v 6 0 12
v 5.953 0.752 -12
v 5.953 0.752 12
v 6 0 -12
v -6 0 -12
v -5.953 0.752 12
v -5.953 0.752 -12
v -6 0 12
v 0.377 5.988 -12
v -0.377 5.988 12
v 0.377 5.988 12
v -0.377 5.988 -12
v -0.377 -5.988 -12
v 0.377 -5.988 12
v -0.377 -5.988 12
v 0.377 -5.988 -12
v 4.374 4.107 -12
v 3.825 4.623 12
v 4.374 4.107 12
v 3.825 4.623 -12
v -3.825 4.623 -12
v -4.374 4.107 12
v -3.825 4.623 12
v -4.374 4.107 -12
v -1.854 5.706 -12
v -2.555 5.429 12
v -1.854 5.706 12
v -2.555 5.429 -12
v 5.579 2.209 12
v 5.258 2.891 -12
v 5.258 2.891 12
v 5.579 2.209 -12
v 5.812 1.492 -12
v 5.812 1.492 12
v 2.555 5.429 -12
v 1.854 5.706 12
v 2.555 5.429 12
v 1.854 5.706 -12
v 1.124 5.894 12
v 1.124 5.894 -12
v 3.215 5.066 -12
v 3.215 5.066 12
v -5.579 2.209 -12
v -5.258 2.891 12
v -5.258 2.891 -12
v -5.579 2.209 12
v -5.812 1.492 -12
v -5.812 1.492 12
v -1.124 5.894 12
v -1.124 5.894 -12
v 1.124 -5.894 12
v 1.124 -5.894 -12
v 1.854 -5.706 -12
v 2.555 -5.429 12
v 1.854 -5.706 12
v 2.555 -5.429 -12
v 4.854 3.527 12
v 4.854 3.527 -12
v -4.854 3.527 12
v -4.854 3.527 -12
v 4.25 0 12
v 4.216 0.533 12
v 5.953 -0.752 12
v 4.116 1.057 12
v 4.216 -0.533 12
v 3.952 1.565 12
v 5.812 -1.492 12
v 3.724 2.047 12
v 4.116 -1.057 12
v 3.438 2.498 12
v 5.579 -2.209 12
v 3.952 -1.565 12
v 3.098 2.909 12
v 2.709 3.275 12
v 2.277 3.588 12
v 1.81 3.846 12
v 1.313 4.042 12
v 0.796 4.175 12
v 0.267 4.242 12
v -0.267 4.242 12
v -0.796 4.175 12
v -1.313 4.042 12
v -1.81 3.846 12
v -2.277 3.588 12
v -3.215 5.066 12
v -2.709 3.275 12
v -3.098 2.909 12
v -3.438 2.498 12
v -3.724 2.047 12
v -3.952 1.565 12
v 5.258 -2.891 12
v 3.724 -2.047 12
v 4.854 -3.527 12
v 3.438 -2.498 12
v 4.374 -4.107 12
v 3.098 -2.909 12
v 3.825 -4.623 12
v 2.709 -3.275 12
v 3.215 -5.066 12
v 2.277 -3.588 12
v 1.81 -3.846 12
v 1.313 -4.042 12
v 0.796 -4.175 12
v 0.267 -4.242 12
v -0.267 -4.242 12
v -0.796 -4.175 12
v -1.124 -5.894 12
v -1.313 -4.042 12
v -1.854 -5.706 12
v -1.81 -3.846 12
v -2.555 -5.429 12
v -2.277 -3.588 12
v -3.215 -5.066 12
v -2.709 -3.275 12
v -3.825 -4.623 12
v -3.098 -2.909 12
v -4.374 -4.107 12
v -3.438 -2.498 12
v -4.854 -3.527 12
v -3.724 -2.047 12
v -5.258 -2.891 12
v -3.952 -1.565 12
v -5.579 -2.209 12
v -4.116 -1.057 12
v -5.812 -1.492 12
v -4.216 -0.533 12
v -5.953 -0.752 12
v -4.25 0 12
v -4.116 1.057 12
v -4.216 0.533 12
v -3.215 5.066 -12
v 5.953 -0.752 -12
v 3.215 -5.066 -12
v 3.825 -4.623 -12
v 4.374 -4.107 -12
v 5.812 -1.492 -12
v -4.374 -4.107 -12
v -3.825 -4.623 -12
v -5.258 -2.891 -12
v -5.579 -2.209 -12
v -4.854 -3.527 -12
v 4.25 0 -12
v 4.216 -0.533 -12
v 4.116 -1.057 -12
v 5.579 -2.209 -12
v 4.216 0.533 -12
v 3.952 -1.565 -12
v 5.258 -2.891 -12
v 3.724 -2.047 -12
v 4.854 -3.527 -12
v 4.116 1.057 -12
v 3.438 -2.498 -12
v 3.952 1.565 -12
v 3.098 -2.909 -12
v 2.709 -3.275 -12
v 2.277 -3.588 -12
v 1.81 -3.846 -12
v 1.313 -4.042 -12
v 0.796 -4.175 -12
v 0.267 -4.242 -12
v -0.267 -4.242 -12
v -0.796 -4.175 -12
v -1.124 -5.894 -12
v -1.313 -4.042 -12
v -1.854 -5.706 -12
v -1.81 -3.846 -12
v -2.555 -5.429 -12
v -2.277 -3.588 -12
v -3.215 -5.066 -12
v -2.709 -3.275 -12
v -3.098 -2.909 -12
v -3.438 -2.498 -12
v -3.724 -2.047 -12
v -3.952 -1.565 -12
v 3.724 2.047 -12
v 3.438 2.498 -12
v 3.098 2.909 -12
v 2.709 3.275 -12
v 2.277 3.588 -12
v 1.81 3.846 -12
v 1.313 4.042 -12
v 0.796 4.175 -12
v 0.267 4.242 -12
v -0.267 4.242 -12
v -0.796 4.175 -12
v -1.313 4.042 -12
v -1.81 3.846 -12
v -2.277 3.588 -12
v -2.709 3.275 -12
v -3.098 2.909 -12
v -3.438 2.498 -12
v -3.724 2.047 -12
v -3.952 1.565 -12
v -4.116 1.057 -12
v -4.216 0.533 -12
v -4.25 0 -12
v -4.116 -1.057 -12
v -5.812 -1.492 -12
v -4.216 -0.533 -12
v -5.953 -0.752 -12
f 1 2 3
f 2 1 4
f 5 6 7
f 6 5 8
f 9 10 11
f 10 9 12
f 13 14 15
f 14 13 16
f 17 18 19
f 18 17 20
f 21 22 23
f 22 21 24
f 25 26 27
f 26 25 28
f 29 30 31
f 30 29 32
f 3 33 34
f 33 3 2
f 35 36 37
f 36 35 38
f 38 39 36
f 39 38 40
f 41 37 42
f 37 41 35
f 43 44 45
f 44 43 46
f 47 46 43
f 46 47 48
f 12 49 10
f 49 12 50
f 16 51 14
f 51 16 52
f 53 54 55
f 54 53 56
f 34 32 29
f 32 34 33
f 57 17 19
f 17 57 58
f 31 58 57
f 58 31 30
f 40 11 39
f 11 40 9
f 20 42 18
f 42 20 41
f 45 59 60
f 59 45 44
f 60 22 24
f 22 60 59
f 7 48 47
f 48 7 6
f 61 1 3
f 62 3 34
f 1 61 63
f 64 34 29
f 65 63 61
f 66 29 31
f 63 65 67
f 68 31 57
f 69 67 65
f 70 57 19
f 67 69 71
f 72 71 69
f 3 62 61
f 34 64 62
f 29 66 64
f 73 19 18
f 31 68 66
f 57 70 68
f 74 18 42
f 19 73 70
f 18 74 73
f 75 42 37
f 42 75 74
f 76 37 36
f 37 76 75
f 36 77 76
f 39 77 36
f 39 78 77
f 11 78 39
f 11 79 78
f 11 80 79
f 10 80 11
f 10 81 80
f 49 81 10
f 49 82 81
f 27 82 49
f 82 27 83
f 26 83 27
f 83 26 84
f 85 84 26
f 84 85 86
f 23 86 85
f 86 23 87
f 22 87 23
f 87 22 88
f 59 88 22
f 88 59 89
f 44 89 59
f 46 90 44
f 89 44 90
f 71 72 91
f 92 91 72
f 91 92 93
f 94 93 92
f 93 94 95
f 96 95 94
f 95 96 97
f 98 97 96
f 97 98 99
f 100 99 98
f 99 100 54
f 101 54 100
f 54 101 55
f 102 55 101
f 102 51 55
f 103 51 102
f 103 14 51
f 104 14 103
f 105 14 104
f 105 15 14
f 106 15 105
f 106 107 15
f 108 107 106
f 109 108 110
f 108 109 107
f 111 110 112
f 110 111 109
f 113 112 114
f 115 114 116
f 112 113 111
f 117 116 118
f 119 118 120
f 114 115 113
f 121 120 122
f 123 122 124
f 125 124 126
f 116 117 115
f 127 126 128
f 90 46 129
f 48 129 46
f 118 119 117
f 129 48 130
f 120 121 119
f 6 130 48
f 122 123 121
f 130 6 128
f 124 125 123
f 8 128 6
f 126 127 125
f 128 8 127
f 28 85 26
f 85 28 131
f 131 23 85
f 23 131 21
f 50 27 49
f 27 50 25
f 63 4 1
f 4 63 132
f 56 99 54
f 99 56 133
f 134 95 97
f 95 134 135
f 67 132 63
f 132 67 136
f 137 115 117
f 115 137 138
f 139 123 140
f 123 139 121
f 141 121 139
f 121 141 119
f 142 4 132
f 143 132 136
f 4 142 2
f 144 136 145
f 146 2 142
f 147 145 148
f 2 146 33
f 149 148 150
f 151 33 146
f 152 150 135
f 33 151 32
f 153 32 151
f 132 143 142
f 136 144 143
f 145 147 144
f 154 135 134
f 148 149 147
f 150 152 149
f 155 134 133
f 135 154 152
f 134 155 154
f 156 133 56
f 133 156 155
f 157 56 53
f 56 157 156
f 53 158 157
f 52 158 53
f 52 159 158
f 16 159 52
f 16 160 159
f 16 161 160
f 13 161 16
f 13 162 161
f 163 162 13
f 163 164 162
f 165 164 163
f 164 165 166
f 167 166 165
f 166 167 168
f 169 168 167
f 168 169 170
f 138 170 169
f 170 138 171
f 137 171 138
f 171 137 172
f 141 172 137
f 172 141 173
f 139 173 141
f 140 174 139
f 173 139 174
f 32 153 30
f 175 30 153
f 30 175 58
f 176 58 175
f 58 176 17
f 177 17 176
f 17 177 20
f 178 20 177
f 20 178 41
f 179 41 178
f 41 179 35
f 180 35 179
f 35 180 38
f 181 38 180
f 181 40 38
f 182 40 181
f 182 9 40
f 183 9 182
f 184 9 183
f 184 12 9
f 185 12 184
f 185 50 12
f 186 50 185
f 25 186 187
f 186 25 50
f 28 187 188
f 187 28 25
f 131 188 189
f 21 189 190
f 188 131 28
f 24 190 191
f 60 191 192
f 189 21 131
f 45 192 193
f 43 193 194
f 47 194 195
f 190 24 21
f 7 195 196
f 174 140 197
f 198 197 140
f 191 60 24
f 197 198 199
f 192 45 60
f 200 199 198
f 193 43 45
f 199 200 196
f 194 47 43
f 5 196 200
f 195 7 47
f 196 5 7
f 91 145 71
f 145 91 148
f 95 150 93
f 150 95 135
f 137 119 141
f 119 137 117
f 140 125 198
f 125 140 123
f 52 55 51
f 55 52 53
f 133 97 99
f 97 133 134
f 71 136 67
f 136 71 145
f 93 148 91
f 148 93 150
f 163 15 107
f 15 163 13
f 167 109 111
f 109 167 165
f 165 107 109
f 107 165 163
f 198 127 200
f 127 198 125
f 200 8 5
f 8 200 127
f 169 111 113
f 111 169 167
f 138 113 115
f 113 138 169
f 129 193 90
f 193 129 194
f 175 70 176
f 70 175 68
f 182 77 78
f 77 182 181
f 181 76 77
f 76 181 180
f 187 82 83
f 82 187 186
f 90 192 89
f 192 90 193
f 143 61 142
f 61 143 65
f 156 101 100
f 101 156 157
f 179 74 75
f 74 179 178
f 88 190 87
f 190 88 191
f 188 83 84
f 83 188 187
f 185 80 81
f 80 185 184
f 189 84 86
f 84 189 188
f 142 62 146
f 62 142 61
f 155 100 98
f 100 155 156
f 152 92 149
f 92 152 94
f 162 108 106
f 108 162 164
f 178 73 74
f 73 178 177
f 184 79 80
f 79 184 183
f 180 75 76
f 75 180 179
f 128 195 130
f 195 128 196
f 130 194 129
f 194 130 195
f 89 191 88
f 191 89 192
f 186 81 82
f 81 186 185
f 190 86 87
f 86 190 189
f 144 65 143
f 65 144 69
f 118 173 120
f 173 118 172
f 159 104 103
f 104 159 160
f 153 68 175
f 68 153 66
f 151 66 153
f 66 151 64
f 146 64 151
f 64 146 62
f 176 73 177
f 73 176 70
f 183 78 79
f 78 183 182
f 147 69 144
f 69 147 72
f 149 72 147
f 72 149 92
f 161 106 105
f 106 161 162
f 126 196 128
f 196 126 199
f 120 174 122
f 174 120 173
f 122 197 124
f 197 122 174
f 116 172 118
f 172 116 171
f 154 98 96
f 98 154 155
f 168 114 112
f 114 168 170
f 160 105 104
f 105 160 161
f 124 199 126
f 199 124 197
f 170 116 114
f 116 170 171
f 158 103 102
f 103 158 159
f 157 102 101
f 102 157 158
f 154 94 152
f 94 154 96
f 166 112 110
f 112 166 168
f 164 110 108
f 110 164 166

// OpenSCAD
$fn = 50;


difference() {
	union() {
		translate(v = [0, 0, -12.0000000000]) {
			cylinder(h = 24, r = 6.0000000000);
		}
	}
	union() {
		translate(v = [0, 0, -100.0000000000]) {
			cylinder(h = 200, r = 4.2500000000);
		}
	}
}
